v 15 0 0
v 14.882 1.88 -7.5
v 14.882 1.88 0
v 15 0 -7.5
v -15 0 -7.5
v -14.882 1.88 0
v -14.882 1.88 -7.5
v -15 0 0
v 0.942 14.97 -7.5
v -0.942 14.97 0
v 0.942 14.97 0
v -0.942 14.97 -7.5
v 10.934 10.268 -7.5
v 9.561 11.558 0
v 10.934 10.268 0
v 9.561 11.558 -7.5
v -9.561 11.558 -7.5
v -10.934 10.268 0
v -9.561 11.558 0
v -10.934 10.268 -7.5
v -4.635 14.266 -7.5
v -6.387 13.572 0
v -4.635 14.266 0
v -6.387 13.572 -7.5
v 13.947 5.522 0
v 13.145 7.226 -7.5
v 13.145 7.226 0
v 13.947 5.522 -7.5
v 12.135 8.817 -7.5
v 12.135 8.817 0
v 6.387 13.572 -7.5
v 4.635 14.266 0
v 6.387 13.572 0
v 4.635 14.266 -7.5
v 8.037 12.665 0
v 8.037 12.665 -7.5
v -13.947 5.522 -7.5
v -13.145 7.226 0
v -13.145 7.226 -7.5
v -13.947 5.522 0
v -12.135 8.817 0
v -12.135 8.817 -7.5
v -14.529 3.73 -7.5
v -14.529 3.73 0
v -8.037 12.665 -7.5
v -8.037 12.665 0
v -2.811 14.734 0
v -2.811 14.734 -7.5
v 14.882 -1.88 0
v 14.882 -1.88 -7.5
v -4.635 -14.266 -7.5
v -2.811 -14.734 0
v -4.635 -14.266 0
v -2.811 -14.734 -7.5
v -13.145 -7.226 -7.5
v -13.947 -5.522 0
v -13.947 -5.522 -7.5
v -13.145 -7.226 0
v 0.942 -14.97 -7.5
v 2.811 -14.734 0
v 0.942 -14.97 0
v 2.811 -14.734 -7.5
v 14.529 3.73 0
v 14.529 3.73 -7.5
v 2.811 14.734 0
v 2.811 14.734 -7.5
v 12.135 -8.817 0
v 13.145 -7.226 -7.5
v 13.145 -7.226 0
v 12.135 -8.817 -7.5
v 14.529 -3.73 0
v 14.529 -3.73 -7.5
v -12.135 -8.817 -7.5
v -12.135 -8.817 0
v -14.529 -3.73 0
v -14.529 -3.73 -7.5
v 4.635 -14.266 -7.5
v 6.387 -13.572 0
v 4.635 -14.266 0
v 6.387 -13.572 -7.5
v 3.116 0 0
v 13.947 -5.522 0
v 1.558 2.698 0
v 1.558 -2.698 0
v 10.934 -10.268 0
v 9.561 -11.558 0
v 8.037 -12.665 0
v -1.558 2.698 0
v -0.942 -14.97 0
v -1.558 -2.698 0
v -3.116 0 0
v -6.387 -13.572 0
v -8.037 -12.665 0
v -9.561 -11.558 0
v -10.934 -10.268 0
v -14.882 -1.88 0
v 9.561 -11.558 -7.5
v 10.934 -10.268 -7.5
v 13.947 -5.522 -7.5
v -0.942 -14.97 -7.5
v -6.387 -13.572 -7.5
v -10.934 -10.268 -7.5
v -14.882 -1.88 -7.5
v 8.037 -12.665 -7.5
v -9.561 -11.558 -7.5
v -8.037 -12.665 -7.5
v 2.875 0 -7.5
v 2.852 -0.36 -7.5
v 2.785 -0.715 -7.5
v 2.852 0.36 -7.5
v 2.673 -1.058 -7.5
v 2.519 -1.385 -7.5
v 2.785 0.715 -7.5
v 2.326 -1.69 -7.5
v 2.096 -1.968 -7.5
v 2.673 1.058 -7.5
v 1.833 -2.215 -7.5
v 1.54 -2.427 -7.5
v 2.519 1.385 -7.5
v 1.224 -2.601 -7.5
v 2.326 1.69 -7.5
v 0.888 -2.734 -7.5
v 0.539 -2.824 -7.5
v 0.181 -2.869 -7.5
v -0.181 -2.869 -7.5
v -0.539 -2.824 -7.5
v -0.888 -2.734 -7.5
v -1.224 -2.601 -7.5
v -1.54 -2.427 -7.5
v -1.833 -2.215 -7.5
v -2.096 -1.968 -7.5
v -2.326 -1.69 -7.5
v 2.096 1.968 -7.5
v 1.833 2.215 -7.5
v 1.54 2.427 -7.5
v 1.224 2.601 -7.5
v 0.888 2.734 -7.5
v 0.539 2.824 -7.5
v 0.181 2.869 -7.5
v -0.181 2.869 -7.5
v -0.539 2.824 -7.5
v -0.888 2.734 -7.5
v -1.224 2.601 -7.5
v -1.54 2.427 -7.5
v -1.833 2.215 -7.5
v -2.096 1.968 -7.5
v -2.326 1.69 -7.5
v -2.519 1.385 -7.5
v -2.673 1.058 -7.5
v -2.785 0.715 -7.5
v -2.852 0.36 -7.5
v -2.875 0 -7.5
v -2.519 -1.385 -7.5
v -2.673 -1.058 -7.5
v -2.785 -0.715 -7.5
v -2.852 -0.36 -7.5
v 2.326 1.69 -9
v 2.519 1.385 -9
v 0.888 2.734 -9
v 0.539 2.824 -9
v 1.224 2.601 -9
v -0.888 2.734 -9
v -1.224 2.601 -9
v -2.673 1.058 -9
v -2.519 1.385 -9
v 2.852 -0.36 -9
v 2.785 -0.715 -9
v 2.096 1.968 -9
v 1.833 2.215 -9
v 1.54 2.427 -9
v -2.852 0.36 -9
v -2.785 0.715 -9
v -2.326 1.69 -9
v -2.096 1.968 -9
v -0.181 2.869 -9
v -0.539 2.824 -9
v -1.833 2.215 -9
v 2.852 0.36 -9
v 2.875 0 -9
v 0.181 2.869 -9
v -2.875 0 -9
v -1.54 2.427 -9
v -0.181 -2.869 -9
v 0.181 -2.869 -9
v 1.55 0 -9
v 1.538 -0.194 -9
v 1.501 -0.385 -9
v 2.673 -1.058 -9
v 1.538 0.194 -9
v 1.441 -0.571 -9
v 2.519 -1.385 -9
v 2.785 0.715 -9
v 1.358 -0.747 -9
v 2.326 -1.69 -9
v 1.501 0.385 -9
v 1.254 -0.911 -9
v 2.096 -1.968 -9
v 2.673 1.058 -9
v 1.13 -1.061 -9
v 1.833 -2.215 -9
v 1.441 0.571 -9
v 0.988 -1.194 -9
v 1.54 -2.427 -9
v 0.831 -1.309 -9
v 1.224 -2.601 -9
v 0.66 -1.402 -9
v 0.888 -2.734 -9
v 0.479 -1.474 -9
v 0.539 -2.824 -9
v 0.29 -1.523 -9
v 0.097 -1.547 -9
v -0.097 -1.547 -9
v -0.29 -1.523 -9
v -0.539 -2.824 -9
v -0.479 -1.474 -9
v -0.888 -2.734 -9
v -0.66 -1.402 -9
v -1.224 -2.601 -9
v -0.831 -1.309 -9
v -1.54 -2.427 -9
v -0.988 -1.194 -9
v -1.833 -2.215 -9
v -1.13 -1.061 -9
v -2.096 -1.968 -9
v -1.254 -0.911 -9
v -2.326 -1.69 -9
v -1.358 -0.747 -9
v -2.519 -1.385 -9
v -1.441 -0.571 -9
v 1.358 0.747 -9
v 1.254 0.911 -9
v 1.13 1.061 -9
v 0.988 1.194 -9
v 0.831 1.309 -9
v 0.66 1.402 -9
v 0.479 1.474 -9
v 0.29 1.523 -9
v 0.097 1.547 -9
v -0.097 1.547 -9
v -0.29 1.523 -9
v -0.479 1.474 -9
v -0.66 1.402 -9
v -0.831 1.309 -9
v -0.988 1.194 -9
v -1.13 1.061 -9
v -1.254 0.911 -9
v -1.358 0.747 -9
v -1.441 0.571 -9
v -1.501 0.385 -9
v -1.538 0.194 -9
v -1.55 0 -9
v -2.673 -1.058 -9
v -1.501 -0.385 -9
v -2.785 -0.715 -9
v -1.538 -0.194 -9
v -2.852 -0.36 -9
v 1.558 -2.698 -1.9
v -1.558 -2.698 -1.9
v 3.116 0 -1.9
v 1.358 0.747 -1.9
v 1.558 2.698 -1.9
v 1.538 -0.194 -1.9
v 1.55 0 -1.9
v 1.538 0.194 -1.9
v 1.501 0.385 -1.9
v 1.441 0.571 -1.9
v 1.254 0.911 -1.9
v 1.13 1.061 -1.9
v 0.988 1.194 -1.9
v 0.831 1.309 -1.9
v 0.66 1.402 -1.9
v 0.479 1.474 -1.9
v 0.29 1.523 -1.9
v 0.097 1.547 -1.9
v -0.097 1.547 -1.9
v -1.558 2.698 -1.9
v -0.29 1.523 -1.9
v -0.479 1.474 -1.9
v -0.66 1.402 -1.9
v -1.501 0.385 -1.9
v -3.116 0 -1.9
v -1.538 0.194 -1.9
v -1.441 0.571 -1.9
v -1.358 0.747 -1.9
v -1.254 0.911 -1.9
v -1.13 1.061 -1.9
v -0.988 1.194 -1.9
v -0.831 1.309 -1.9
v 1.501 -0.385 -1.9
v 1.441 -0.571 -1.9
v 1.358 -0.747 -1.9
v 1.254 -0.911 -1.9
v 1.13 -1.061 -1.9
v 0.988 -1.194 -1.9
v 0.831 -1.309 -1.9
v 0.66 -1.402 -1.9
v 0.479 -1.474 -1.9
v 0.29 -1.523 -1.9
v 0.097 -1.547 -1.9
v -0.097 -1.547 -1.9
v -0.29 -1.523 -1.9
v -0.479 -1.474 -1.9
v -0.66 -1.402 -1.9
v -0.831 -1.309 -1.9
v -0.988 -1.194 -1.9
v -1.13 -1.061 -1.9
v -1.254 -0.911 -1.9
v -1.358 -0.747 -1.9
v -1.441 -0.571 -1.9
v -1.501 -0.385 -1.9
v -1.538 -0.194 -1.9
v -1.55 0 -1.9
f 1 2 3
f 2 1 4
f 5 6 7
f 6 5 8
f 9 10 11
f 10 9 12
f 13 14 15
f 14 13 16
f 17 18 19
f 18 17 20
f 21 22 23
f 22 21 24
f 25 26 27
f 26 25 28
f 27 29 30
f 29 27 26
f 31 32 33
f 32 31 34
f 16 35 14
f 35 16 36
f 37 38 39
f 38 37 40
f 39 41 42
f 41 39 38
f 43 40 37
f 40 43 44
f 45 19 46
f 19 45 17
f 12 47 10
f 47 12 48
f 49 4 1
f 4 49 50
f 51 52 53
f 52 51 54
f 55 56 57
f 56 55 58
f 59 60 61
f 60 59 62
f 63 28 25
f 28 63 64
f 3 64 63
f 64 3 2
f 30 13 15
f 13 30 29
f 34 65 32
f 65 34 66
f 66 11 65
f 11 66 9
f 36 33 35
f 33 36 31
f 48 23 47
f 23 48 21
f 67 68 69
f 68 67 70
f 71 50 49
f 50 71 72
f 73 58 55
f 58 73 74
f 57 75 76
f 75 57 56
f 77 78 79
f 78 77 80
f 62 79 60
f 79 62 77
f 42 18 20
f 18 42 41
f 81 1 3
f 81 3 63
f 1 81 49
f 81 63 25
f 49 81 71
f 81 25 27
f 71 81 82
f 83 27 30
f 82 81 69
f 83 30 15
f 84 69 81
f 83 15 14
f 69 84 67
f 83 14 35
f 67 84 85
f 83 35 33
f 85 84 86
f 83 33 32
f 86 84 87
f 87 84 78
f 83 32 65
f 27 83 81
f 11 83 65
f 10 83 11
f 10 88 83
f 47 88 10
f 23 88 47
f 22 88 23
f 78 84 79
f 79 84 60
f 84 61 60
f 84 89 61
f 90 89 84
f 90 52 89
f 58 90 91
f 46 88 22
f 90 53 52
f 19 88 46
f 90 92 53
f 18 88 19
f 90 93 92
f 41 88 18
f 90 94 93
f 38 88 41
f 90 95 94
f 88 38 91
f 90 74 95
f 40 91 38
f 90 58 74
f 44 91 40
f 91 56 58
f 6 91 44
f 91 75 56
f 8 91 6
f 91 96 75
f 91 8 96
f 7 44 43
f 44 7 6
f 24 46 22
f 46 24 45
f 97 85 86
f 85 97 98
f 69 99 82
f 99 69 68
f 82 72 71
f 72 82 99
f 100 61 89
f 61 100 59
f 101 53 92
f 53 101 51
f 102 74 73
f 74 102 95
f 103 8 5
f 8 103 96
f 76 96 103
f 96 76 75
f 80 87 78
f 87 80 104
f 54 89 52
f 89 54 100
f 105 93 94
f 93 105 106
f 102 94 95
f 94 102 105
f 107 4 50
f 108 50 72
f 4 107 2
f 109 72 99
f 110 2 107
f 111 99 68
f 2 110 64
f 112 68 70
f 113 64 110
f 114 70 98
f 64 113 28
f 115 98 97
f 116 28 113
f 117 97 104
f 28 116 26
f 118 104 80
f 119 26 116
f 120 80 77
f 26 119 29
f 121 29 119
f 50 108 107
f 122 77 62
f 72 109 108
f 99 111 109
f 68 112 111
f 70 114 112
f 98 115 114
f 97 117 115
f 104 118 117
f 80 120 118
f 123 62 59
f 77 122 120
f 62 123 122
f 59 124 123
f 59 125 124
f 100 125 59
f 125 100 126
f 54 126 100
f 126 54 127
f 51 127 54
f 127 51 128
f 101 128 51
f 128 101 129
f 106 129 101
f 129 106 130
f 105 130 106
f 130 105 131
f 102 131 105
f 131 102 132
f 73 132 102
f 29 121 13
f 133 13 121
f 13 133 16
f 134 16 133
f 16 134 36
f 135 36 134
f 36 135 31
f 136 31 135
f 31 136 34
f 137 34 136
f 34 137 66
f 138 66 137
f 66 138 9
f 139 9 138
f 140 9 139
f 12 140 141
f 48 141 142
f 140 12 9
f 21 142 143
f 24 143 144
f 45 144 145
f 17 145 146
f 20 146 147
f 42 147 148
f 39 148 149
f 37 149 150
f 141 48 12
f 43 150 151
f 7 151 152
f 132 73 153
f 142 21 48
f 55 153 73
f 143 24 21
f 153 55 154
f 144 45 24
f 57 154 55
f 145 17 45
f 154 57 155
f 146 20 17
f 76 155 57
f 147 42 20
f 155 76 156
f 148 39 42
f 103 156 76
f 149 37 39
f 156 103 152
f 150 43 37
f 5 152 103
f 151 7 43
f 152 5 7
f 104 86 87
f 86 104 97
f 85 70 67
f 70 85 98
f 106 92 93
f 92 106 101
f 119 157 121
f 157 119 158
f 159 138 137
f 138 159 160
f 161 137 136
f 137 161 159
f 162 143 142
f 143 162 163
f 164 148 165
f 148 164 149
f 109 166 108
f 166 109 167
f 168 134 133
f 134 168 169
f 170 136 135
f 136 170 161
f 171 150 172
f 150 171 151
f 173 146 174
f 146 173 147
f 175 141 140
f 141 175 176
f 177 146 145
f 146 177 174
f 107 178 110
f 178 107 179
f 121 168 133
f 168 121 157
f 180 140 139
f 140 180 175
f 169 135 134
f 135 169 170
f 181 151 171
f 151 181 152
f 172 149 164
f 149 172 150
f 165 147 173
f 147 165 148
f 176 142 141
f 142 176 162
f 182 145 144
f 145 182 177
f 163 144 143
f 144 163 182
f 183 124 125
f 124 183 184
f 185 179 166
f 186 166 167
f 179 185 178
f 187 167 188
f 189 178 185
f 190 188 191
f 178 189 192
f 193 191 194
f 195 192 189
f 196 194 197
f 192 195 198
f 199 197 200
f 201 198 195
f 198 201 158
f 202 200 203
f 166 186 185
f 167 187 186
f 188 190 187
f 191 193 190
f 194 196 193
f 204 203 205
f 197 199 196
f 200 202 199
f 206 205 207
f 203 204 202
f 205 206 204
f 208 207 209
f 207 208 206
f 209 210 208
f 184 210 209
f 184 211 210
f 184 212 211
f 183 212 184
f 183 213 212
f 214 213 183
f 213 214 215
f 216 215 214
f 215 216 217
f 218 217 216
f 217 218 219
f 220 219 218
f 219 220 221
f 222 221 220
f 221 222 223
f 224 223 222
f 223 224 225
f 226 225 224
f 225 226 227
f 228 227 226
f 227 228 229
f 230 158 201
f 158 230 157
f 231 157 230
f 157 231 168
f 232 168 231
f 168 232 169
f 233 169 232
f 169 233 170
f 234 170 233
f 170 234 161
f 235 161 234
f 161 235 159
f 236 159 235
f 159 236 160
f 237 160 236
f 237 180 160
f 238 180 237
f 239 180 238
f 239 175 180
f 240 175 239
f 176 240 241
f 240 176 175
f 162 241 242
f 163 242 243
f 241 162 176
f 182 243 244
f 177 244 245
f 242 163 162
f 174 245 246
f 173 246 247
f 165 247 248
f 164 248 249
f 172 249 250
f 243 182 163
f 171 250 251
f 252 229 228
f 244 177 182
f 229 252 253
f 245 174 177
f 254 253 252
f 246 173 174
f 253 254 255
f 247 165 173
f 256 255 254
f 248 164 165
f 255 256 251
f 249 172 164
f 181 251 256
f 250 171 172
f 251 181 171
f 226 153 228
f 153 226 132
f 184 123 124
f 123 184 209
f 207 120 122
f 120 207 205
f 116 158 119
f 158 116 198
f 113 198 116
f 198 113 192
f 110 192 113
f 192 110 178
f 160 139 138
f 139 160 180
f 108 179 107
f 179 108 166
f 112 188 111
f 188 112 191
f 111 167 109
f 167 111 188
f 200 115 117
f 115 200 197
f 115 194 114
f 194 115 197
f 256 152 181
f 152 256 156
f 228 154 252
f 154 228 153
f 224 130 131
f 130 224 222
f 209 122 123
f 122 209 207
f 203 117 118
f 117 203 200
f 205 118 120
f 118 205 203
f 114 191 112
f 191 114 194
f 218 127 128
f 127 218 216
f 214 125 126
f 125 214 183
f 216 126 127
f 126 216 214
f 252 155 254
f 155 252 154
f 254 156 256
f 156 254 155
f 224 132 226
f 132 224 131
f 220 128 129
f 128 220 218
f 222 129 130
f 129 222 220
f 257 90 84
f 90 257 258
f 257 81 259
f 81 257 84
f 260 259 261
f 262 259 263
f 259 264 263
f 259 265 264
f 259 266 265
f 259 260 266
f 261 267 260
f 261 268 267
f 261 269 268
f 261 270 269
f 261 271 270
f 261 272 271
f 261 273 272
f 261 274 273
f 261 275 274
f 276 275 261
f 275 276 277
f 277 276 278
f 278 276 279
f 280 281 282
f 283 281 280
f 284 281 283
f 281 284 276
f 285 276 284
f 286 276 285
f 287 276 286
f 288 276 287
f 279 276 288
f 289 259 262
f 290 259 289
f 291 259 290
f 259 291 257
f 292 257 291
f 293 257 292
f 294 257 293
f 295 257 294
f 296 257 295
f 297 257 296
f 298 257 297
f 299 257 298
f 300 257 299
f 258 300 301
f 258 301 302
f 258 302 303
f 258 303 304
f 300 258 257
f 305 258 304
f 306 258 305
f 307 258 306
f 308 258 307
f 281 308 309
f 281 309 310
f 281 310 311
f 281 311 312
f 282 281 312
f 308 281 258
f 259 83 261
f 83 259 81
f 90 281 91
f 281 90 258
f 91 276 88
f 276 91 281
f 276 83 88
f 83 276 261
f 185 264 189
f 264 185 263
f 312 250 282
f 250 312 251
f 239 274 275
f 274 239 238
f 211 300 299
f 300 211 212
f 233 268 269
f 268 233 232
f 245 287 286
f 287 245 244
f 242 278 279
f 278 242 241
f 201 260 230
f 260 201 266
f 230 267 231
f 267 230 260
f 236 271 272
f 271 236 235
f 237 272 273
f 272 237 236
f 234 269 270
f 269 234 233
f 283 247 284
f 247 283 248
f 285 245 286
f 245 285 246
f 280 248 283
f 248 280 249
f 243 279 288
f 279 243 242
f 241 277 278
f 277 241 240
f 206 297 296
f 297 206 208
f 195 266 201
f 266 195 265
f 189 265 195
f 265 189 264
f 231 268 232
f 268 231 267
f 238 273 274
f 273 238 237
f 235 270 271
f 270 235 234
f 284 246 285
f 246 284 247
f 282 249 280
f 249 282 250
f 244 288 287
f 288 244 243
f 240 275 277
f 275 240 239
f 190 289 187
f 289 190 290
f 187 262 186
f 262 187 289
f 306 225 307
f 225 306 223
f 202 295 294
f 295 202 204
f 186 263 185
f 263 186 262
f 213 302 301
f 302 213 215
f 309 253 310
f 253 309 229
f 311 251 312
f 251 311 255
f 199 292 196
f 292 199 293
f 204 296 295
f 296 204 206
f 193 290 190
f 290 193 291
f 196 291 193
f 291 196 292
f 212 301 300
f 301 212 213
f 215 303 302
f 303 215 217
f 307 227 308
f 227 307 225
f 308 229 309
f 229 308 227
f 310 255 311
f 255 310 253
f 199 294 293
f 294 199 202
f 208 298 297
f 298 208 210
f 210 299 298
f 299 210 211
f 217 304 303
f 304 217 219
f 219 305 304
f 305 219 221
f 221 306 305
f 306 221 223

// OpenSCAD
$fn = 50;

difference() {
	union() {
		translate(v = [0, 0, -7.5]) {
			cylinder(h = 7.5, r = 15.0);
		}
		#translate(v = [0, 0, -9.0]) {
			cylinder(h = 9, r = 2.875);
		}
	}
	union() {
		translate(v = [0, 0, 0]) {
			rotate(a = [0, 0, 0]) {
				difference() {
					union() {
						translate(v = [0, 0, -1.9]) {
							linear_extrude(height = 1.9) {
								polygon(points = [[3.1158, 0.0], [1.5579000000000005, 2.698361953111554], [-1.5578999999999994, 2.6983619531115544], [-3.1158, 3.815754496783323e-16], [-1.5579000000000014, -2.6983619531115535], [1.557899999999998, -2.6983619531115552]]);
							}
						}
					}
					union();
				}
			}
		}
		#translate(v = [0, 0, -100.0]) {
			cylinder(h = 200, r = 1.55);
		}
	}
}
